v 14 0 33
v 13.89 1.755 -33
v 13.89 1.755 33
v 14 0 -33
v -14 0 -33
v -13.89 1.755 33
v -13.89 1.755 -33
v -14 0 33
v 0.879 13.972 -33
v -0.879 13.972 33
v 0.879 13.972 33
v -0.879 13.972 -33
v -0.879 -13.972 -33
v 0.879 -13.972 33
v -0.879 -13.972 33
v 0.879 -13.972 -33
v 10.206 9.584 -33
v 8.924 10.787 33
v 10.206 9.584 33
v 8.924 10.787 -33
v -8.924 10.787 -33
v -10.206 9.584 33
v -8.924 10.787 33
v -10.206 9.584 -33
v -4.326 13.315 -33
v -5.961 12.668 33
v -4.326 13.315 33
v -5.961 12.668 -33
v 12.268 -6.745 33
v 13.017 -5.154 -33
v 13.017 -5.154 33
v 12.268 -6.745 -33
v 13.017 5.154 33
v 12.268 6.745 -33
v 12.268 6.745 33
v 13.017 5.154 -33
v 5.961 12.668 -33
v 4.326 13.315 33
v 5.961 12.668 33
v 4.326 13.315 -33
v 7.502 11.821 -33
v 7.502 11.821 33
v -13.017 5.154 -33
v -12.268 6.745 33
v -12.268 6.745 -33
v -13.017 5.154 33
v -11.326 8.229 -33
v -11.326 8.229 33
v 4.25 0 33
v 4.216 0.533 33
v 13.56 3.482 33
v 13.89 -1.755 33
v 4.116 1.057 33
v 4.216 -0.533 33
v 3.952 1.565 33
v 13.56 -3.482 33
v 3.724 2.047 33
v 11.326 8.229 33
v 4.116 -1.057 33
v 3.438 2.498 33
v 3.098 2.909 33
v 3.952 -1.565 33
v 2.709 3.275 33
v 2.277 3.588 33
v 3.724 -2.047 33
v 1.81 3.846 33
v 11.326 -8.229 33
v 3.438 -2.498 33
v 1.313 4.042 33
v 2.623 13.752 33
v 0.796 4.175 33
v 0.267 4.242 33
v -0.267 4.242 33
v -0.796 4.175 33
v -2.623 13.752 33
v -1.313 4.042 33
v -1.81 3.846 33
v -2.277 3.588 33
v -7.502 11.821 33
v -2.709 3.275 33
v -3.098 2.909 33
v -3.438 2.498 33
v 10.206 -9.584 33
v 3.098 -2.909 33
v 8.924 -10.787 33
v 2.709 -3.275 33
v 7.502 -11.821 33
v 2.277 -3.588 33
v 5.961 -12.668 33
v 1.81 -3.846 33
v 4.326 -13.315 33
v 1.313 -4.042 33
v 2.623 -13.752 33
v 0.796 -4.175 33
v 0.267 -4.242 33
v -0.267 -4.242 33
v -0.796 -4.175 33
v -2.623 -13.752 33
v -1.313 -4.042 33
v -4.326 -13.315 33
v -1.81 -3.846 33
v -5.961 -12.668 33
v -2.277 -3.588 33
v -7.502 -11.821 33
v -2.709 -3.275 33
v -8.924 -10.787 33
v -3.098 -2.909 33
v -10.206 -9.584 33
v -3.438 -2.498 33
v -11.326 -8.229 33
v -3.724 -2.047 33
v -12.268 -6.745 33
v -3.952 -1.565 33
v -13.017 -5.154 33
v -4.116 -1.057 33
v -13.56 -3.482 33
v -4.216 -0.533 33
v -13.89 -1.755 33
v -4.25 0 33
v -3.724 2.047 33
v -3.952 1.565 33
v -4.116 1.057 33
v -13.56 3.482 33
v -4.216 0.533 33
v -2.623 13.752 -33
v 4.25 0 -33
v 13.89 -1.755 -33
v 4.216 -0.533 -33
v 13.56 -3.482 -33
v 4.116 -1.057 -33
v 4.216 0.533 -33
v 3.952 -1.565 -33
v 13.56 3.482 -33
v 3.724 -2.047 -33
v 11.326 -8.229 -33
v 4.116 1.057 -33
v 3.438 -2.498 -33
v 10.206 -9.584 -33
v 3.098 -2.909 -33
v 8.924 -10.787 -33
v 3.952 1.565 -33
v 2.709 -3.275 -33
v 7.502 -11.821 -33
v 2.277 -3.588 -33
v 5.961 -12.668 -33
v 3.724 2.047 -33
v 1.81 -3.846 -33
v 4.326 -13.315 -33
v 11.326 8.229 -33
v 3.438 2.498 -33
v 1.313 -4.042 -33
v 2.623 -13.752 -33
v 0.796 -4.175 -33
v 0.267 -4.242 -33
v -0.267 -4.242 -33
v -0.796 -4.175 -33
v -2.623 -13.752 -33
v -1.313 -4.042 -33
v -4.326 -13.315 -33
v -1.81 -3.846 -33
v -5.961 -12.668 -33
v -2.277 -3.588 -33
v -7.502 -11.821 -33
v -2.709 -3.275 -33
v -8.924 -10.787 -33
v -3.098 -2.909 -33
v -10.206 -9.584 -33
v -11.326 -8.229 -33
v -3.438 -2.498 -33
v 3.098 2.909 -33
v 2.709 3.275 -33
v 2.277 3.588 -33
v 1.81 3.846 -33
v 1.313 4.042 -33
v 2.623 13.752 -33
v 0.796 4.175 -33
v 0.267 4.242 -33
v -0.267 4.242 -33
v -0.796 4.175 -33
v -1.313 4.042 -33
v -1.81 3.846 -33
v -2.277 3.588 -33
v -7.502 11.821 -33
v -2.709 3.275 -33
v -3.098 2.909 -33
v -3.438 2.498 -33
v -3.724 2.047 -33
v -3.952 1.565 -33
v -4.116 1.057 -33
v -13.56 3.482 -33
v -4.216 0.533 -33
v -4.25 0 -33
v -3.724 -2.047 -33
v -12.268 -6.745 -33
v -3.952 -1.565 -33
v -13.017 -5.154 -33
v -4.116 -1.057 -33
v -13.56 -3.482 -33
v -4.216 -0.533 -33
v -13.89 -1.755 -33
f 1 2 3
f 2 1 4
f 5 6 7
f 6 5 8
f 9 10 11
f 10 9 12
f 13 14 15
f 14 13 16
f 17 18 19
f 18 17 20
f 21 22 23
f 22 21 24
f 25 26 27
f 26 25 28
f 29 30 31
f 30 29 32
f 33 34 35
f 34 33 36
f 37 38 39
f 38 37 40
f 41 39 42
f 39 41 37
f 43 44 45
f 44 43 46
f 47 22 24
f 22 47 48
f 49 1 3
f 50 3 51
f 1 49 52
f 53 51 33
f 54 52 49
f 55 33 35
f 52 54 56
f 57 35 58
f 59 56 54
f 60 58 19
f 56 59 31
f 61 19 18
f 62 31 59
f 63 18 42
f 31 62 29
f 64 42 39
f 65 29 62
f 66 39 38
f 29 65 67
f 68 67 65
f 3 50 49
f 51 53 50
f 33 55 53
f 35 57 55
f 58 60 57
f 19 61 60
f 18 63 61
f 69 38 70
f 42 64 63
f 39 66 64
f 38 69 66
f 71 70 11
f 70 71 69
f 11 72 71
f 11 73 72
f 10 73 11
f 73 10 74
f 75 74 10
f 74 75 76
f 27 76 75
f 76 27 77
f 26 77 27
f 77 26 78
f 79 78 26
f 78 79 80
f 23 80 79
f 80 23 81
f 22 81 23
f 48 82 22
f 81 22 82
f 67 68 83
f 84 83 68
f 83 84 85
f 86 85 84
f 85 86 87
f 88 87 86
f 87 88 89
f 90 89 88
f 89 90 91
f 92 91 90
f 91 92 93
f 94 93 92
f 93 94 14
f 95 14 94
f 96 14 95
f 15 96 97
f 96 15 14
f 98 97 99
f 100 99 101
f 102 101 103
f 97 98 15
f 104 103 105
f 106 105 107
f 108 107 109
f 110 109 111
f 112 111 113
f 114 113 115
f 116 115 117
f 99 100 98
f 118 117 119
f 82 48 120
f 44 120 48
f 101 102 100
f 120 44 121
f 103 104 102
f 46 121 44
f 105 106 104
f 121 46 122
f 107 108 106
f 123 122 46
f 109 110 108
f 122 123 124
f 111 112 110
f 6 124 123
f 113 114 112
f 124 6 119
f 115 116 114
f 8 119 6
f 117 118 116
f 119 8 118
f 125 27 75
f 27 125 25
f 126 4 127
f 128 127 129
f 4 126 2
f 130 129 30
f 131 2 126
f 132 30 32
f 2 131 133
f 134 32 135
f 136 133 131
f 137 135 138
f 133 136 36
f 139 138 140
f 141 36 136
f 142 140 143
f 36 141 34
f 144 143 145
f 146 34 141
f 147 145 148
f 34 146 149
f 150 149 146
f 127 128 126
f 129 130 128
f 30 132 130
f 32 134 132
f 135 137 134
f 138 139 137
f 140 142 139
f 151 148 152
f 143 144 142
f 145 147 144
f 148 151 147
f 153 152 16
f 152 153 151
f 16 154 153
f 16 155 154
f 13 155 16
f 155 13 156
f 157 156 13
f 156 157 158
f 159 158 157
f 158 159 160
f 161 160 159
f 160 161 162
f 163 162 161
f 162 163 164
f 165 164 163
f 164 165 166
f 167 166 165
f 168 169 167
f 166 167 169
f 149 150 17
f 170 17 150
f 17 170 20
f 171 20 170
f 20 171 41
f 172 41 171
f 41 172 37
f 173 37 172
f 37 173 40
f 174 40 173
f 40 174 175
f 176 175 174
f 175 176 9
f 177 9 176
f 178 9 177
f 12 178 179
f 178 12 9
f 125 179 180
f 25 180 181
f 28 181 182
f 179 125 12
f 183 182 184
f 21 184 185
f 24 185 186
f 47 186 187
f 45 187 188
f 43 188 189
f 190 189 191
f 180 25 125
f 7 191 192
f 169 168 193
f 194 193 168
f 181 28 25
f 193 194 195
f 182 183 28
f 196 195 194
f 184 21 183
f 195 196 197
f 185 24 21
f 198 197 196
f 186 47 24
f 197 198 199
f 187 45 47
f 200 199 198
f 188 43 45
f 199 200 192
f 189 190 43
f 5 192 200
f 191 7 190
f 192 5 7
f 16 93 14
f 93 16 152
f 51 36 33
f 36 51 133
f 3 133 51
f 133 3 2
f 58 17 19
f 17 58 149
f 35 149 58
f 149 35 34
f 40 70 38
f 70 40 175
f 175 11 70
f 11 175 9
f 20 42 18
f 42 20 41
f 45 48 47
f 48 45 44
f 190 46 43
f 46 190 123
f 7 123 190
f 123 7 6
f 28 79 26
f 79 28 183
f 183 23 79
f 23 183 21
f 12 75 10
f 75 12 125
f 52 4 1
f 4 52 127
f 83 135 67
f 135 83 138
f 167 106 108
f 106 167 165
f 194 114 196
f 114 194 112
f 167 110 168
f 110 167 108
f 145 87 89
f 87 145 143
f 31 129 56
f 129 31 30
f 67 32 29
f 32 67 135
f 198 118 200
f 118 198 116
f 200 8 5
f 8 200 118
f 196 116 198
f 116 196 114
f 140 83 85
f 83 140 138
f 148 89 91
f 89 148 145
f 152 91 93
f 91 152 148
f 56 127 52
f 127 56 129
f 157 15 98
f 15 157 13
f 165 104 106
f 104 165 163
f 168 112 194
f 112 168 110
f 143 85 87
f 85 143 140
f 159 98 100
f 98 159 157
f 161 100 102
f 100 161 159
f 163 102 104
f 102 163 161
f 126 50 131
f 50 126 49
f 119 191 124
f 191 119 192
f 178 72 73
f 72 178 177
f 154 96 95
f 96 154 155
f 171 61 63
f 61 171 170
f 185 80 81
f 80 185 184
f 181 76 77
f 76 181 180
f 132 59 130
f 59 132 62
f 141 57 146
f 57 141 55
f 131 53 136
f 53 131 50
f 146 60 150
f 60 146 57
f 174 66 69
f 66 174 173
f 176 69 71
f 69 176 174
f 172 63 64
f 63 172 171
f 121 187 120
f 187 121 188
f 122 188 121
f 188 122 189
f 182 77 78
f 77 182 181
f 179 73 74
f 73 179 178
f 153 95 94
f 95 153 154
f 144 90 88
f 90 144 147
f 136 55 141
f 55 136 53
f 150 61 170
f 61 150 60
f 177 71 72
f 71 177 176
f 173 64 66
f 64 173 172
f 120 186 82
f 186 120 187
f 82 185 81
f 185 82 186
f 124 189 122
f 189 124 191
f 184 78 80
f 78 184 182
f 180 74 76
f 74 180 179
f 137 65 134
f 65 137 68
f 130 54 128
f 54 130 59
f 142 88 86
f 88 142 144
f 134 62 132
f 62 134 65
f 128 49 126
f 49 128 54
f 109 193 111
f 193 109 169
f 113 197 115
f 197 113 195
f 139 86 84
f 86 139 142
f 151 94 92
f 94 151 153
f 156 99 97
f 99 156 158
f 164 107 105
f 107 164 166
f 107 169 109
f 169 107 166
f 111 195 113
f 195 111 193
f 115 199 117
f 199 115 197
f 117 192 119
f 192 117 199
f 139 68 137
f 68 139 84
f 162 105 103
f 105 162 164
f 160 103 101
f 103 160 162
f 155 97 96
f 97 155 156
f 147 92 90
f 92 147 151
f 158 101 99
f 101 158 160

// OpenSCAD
$fn = 50;


difference() {
	union() {
		translate(v = [0, 0, -33.0000000000]) {
			cylinder(h = 66, r = 14.0000000000);
		}
	}
	union() {
		translate(v = [0, 0, -100.0000000000]) {
			cylinder(h = 200, r = 4.2500000000);
		}
	}
}
